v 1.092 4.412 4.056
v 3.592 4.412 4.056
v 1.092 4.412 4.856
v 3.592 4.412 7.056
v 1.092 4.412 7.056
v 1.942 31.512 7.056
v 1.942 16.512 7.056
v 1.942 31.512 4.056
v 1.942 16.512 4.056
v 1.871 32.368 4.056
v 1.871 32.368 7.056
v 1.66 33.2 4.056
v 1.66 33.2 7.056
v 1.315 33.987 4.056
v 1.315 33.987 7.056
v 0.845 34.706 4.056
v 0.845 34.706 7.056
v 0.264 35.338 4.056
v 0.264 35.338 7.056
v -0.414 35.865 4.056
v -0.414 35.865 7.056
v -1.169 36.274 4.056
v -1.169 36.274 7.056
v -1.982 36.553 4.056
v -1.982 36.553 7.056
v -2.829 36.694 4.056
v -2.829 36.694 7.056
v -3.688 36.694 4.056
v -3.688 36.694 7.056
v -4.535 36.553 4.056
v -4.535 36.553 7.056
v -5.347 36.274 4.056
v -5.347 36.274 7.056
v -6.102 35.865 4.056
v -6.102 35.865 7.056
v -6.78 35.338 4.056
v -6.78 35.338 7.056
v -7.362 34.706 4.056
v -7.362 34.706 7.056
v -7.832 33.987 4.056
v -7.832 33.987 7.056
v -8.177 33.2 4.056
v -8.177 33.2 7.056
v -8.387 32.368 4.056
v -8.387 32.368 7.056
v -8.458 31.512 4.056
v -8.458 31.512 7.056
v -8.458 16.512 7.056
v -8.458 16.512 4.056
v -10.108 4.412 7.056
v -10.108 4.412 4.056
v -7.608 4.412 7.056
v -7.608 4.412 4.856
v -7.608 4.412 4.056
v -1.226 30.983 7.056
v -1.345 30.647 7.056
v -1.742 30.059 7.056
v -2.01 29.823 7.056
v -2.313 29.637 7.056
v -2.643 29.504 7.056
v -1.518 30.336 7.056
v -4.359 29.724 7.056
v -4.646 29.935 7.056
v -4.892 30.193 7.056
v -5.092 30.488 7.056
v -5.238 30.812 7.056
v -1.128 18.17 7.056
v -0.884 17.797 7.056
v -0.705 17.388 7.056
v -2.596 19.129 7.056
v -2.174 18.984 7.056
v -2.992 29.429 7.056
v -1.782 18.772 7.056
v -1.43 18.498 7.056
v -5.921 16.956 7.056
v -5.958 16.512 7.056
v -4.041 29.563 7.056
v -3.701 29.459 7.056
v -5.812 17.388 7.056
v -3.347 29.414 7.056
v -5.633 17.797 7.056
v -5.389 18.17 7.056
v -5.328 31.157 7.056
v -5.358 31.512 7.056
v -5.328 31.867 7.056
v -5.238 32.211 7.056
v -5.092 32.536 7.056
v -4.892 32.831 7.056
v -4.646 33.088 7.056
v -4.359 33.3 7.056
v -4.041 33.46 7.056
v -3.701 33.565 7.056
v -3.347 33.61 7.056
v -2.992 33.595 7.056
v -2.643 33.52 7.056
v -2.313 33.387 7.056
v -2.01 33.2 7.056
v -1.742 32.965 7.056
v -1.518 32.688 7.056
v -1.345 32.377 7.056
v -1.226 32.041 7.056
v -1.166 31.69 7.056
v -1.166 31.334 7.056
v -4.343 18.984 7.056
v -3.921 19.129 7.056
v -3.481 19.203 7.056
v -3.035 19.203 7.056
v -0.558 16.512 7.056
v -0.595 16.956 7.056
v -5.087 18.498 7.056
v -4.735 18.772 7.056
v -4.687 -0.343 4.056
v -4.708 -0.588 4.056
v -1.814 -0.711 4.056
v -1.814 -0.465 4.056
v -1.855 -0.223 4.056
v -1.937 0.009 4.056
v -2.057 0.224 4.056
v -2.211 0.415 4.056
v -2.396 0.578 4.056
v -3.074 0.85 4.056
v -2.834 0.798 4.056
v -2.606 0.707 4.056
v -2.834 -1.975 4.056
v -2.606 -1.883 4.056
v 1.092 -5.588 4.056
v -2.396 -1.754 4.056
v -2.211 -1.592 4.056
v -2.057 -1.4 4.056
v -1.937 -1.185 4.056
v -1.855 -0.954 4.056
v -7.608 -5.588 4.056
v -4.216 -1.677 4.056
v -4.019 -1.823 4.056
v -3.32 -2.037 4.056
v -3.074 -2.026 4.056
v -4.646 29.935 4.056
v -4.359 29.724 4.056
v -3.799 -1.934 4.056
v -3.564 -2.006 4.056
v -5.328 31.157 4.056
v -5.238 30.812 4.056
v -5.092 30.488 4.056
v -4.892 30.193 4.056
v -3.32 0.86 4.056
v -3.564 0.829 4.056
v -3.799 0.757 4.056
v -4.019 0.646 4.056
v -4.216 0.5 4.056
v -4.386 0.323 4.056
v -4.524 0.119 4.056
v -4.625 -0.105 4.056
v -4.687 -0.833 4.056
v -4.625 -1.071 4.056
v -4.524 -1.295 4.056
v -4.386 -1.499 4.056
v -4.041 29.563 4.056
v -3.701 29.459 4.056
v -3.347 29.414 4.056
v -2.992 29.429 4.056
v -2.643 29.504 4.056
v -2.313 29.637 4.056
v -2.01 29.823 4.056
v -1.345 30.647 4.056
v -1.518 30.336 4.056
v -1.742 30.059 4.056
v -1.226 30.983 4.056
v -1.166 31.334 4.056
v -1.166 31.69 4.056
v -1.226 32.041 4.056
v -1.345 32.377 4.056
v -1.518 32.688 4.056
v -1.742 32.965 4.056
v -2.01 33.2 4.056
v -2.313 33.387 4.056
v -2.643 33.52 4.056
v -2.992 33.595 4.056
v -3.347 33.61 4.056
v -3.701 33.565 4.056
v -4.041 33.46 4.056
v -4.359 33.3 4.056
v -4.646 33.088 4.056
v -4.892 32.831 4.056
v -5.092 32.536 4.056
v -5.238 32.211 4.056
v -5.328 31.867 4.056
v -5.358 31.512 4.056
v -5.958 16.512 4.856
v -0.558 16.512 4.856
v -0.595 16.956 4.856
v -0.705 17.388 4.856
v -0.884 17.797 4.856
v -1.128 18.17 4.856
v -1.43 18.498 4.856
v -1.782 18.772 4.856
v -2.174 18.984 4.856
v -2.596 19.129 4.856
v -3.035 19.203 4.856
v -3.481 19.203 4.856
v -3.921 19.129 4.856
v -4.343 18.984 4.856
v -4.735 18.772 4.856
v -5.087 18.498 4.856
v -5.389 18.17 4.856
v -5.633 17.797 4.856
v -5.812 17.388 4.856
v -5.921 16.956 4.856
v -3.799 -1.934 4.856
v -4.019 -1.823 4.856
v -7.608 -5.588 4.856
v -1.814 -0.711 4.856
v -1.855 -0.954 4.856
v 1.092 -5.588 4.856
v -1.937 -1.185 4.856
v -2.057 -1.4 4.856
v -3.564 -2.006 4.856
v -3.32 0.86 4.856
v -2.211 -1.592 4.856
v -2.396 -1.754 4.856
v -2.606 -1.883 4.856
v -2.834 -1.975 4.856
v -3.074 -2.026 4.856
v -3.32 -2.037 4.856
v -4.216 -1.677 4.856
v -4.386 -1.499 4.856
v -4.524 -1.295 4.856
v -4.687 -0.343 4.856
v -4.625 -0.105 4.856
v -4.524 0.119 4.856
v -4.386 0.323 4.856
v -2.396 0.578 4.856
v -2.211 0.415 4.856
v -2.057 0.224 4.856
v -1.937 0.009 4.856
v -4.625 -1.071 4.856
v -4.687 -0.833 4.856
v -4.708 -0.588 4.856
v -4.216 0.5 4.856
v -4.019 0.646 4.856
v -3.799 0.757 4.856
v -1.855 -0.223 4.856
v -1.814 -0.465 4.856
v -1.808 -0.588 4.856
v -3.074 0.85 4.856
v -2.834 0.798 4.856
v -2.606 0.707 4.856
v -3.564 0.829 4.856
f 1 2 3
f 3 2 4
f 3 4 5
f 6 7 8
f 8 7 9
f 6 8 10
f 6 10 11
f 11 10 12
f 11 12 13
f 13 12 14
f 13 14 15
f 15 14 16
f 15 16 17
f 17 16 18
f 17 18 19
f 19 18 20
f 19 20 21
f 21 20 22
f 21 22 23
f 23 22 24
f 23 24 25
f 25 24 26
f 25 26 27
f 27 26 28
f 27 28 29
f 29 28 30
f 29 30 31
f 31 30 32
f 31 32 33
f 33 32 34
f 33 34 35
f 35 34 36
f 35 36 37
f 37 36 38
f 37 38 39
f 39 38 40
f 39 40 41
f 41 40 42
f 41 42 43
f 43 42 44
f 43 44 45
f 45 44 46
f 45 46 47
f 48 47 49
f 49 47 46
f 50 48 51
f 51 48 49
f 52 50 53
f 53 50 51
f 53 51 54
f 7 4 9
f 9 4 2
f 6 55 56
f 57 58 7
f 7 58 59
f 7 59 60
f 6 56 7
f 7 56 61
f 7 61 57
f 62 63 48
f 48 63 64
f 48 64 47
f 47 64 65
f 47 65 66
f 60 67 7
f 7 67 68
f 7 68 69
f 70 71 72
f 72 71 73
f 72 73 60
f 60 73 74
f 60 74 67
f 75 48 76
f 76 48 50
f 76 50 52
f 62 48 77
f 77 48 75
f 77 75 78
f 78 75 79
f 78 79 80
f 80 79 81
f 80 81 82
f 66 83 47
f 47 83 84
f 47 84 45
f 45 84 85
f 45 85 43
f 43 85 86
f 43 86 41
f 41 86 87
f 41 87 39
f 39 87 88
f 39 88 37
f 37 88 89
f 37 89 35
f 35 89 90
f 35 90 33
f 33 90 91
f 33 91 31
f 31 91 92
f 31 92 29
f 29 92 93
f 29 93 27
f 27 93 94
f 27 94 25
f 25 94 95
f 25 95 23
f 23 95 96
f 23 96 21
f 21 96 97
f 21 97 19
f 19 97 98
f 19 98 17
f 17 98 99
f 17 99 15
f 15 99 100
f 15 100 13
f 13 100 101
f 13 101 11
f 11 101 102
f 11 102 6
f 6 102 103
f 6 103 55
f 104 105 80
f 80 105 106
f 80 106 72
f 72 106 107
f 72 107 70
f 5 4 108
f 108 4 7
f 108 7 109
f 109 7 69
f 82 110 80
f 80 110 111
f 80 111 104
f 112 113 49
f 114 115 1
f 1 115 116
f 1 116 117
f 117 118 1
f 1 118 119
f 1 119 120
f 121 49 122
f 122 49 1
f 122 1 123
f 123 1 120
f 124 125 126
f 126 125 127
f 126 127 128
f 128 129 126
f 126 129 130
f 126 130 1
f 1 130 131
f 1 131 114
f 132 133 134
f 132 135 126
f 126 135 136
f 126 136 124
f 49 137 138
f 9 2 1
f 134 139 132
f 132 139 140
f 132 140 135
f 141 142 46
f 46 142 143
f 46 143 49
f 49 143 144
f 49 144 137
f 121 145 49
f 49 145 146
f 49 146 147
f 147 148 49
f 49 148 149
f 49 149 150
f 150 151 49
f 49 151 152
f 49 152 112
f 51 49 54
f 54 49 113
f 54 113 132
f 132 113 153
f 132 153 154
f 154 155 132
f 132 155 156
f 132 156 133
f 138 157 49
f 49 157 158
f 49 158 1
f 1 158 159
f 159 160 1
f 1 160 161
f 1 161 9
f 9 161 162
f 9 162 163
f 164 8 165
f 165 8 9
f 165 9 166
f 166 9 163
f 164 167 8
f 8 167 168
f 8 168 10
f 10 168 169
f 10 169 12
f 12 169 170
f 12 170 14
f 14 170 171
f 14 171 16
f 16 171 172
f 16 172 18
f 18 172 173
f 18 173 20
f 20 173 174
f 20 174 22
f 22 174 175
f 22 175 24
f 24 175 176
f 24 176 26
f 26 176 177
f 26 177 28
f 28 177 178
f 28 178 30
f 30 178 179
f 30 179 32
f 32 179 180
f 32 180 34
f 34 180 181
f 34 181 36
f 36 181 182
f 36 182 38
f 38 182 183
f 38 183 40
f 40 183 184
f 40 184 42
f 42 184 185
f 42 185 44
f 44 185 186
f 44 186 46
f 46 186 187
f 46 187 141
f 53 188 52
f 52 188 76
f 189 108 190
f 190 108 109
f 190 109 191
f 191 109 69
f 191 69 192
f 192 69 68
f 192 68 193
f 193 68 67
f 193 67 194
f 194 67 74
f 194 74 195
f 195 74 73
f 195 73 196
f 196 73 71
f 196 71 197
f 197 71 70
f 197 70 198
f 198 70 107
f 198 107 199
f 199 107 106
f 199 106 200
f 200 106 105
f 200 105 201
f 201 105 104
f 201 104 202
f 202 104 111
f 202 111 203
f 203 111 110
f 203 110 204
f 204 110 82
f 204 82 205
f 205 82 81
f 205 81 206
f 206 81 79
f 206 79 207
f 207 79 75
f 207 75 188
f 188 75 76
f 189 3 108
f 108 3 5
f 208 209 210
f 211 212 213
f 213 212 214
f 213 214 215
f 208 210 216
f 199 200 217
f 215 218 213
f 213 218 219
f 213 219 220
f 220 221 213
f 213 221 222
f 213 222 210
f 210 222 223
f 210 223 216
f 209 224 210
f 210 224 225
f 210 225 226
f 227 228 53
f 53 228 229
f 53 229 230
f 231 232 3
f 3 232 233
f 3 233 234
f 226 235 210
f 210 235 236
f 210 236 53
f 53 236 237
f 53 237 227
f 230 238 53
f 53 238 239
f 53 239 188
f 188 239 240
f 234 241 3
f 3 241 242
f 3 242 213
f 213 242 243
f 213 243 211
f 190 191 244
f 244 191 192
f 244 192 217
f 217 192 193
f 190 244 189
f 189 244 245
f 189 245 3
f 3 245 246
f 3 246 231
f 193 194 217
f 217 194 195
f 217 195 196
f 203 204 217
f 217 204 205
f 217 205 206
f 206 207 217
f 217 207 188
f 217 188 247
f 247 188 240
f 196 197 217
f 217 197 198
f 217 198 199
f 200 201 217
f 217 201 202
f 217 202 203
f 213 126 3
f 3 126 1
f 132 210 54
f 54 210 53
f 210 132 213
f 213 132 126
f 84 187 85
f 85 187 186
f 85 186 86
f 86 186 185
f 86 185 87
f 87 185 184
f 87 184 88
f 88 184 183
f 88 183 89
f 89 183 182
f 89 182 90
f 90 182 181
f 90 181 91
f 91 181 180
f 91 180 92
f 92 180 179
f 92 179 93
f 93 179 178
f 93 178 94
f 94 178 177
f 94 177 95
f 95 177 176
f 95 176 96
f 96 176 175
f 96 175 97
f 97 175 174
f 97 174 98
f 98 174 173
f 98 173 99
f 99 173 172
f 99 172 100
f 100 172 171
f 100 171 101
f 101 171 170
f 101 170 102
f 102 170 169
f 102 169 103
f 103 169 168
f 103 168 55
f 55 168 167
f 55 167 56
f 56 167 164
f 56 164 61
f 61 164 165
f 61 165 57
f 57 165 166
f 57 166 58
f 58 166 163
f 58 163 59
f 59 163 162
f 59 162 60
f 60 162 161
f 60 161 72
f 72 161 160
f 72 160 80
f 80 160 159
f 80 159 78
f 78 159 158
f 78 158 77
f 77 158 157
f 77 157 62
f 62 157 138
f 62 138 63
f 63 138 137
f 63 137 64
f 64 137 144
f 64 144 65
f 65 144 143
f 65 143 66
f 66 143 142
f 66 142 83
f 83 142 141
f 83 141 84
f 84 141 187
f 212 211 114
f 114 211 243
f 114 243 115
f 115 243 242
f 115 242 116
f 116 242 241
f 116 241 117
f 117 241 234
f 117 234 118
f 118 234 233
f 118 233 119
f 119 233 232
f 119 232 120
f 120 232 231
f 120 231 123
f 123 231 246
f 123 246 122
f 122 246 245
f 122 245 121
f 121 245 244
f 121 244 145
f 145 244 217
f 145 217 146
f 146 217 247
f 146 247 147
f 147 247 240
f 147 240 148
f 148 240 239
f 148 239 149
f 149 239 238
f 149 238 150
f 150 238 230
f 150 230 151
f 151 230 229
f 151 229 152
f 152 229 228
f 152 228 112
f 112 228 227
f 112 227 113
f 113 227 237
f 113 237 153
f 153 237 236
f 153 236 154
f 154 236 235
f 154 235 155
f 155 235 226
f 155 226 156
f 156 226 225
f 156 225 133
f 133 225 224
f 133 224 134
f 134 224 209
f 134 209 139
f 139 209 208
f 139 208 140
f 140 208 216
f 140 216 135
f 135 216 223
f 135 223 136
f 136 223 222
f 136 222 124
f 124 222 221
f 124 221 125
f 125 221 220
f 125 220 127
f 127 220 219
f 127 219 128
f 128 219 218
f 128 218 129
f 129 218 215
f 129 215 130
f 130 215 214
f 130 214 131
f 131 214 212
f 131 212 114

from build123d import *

# Parameters (mm, degrees)
BOSS_EXTRUDE1_DEPTH        = 3
CUT_EXTRUDE1_DEPTH         = 2.2
SKETCH3_W                  = 8.7
SKETCH3_H                  = 0.8
BOSS_EXTRUDE2_DEPTH        = 10
F_3_7_3_7_DIAMETER_HOLE1_D = 4.2
F_2_9_2_9_DIAMETER_HOLE1_D = 2.9


with BuildPart() as part:
    # Sketch1 → Boss-Extrude1 (new body)
    with BuildSketch(Plane(origin=(0, 0, 4.056081063), x_dir=(-1, 0, 0), z_dir=(0, 0, -1))):
        with BuildLine():
            Line((-1.941684048, 16.511778169), (-3.591684048, 4.411778169))
            Line((-3.591684048, 4.411778169), (10.108315952, 4.411778169))
            Line((10.108315952, 4.411778169), (8.458315952, 16.511778169))
            Line((8.458315952, 16.511778169), (8.458315952, 31.511778169))
            ThreePointArc((8.458315952, 31.511778169), (3.258315952, 36.711778169), (-1.941684048, 31.511778169))
            Line((-1.941684048, 31.511778169), (-1.941684048, 16.511778169))
        make_face()
    extrude(amount=-BOSS_EXTRUDE1_DEPTH)

    # Sketch2 → Cut-Extrude1 (cut)
    with BuildSketch(Plane.XY.offset(7.056081063)):
        with BuildLine():
            Line((1.091684048, 4.411778169), (-0.558315952, 16.511778169))
            ThreePointArc((-0.558315952, 16.511778169), (-3.258315952, 19.211778169), (-5.958315952, 16.511778169))
            Line((-5.958315952, 16.511778169), (-7.608315952, 4.411778169))
            Line((-7.608315952, 4.411778169), (1.091684048, 4.411778169))
        make_face()
    extrude(amount=-CUT_EXTRUDE1_DEPTH, mode=Mode.SUBTRACT)

    # Sketch3 → Boss-Extrude2 (add)
    with BuildSketch(Plane.XZ.offset(-4.411778169)):
        with Locations((-3.258315952, 4.456081063)):
            Rectangle(SKETCH3_W, SKETCH3_H)
    extrude(amount=BOSS_EXTRUDE2_DEPTH)

    # Ø3.7 (3.7) Diameter Hole1 (through all)
    with Locations(Plane(origin=(0, 0, 4.056081063), x_dir=(-1, 0, 0), z_dir=(0, 0, -1))):
        with Locations((3.258315952, 31.511778169)):
            Hole(F_3_7_3_7_DIAMETER_HOLE1_D / 2)

    # Ø2.9 (2.9) Diameter Hole1 (through all)
    with Locations(Plane(origin=(0, 0, 4.056081063), x_dir=(-1, 0, 0), z_dir=(0, 0, -1))):
        with Locations((3.258315952, -0.588221831)):
            Hole(F_2_9_2_9_DIAMETER_HOLE1_D / 2)


solid = part.part
